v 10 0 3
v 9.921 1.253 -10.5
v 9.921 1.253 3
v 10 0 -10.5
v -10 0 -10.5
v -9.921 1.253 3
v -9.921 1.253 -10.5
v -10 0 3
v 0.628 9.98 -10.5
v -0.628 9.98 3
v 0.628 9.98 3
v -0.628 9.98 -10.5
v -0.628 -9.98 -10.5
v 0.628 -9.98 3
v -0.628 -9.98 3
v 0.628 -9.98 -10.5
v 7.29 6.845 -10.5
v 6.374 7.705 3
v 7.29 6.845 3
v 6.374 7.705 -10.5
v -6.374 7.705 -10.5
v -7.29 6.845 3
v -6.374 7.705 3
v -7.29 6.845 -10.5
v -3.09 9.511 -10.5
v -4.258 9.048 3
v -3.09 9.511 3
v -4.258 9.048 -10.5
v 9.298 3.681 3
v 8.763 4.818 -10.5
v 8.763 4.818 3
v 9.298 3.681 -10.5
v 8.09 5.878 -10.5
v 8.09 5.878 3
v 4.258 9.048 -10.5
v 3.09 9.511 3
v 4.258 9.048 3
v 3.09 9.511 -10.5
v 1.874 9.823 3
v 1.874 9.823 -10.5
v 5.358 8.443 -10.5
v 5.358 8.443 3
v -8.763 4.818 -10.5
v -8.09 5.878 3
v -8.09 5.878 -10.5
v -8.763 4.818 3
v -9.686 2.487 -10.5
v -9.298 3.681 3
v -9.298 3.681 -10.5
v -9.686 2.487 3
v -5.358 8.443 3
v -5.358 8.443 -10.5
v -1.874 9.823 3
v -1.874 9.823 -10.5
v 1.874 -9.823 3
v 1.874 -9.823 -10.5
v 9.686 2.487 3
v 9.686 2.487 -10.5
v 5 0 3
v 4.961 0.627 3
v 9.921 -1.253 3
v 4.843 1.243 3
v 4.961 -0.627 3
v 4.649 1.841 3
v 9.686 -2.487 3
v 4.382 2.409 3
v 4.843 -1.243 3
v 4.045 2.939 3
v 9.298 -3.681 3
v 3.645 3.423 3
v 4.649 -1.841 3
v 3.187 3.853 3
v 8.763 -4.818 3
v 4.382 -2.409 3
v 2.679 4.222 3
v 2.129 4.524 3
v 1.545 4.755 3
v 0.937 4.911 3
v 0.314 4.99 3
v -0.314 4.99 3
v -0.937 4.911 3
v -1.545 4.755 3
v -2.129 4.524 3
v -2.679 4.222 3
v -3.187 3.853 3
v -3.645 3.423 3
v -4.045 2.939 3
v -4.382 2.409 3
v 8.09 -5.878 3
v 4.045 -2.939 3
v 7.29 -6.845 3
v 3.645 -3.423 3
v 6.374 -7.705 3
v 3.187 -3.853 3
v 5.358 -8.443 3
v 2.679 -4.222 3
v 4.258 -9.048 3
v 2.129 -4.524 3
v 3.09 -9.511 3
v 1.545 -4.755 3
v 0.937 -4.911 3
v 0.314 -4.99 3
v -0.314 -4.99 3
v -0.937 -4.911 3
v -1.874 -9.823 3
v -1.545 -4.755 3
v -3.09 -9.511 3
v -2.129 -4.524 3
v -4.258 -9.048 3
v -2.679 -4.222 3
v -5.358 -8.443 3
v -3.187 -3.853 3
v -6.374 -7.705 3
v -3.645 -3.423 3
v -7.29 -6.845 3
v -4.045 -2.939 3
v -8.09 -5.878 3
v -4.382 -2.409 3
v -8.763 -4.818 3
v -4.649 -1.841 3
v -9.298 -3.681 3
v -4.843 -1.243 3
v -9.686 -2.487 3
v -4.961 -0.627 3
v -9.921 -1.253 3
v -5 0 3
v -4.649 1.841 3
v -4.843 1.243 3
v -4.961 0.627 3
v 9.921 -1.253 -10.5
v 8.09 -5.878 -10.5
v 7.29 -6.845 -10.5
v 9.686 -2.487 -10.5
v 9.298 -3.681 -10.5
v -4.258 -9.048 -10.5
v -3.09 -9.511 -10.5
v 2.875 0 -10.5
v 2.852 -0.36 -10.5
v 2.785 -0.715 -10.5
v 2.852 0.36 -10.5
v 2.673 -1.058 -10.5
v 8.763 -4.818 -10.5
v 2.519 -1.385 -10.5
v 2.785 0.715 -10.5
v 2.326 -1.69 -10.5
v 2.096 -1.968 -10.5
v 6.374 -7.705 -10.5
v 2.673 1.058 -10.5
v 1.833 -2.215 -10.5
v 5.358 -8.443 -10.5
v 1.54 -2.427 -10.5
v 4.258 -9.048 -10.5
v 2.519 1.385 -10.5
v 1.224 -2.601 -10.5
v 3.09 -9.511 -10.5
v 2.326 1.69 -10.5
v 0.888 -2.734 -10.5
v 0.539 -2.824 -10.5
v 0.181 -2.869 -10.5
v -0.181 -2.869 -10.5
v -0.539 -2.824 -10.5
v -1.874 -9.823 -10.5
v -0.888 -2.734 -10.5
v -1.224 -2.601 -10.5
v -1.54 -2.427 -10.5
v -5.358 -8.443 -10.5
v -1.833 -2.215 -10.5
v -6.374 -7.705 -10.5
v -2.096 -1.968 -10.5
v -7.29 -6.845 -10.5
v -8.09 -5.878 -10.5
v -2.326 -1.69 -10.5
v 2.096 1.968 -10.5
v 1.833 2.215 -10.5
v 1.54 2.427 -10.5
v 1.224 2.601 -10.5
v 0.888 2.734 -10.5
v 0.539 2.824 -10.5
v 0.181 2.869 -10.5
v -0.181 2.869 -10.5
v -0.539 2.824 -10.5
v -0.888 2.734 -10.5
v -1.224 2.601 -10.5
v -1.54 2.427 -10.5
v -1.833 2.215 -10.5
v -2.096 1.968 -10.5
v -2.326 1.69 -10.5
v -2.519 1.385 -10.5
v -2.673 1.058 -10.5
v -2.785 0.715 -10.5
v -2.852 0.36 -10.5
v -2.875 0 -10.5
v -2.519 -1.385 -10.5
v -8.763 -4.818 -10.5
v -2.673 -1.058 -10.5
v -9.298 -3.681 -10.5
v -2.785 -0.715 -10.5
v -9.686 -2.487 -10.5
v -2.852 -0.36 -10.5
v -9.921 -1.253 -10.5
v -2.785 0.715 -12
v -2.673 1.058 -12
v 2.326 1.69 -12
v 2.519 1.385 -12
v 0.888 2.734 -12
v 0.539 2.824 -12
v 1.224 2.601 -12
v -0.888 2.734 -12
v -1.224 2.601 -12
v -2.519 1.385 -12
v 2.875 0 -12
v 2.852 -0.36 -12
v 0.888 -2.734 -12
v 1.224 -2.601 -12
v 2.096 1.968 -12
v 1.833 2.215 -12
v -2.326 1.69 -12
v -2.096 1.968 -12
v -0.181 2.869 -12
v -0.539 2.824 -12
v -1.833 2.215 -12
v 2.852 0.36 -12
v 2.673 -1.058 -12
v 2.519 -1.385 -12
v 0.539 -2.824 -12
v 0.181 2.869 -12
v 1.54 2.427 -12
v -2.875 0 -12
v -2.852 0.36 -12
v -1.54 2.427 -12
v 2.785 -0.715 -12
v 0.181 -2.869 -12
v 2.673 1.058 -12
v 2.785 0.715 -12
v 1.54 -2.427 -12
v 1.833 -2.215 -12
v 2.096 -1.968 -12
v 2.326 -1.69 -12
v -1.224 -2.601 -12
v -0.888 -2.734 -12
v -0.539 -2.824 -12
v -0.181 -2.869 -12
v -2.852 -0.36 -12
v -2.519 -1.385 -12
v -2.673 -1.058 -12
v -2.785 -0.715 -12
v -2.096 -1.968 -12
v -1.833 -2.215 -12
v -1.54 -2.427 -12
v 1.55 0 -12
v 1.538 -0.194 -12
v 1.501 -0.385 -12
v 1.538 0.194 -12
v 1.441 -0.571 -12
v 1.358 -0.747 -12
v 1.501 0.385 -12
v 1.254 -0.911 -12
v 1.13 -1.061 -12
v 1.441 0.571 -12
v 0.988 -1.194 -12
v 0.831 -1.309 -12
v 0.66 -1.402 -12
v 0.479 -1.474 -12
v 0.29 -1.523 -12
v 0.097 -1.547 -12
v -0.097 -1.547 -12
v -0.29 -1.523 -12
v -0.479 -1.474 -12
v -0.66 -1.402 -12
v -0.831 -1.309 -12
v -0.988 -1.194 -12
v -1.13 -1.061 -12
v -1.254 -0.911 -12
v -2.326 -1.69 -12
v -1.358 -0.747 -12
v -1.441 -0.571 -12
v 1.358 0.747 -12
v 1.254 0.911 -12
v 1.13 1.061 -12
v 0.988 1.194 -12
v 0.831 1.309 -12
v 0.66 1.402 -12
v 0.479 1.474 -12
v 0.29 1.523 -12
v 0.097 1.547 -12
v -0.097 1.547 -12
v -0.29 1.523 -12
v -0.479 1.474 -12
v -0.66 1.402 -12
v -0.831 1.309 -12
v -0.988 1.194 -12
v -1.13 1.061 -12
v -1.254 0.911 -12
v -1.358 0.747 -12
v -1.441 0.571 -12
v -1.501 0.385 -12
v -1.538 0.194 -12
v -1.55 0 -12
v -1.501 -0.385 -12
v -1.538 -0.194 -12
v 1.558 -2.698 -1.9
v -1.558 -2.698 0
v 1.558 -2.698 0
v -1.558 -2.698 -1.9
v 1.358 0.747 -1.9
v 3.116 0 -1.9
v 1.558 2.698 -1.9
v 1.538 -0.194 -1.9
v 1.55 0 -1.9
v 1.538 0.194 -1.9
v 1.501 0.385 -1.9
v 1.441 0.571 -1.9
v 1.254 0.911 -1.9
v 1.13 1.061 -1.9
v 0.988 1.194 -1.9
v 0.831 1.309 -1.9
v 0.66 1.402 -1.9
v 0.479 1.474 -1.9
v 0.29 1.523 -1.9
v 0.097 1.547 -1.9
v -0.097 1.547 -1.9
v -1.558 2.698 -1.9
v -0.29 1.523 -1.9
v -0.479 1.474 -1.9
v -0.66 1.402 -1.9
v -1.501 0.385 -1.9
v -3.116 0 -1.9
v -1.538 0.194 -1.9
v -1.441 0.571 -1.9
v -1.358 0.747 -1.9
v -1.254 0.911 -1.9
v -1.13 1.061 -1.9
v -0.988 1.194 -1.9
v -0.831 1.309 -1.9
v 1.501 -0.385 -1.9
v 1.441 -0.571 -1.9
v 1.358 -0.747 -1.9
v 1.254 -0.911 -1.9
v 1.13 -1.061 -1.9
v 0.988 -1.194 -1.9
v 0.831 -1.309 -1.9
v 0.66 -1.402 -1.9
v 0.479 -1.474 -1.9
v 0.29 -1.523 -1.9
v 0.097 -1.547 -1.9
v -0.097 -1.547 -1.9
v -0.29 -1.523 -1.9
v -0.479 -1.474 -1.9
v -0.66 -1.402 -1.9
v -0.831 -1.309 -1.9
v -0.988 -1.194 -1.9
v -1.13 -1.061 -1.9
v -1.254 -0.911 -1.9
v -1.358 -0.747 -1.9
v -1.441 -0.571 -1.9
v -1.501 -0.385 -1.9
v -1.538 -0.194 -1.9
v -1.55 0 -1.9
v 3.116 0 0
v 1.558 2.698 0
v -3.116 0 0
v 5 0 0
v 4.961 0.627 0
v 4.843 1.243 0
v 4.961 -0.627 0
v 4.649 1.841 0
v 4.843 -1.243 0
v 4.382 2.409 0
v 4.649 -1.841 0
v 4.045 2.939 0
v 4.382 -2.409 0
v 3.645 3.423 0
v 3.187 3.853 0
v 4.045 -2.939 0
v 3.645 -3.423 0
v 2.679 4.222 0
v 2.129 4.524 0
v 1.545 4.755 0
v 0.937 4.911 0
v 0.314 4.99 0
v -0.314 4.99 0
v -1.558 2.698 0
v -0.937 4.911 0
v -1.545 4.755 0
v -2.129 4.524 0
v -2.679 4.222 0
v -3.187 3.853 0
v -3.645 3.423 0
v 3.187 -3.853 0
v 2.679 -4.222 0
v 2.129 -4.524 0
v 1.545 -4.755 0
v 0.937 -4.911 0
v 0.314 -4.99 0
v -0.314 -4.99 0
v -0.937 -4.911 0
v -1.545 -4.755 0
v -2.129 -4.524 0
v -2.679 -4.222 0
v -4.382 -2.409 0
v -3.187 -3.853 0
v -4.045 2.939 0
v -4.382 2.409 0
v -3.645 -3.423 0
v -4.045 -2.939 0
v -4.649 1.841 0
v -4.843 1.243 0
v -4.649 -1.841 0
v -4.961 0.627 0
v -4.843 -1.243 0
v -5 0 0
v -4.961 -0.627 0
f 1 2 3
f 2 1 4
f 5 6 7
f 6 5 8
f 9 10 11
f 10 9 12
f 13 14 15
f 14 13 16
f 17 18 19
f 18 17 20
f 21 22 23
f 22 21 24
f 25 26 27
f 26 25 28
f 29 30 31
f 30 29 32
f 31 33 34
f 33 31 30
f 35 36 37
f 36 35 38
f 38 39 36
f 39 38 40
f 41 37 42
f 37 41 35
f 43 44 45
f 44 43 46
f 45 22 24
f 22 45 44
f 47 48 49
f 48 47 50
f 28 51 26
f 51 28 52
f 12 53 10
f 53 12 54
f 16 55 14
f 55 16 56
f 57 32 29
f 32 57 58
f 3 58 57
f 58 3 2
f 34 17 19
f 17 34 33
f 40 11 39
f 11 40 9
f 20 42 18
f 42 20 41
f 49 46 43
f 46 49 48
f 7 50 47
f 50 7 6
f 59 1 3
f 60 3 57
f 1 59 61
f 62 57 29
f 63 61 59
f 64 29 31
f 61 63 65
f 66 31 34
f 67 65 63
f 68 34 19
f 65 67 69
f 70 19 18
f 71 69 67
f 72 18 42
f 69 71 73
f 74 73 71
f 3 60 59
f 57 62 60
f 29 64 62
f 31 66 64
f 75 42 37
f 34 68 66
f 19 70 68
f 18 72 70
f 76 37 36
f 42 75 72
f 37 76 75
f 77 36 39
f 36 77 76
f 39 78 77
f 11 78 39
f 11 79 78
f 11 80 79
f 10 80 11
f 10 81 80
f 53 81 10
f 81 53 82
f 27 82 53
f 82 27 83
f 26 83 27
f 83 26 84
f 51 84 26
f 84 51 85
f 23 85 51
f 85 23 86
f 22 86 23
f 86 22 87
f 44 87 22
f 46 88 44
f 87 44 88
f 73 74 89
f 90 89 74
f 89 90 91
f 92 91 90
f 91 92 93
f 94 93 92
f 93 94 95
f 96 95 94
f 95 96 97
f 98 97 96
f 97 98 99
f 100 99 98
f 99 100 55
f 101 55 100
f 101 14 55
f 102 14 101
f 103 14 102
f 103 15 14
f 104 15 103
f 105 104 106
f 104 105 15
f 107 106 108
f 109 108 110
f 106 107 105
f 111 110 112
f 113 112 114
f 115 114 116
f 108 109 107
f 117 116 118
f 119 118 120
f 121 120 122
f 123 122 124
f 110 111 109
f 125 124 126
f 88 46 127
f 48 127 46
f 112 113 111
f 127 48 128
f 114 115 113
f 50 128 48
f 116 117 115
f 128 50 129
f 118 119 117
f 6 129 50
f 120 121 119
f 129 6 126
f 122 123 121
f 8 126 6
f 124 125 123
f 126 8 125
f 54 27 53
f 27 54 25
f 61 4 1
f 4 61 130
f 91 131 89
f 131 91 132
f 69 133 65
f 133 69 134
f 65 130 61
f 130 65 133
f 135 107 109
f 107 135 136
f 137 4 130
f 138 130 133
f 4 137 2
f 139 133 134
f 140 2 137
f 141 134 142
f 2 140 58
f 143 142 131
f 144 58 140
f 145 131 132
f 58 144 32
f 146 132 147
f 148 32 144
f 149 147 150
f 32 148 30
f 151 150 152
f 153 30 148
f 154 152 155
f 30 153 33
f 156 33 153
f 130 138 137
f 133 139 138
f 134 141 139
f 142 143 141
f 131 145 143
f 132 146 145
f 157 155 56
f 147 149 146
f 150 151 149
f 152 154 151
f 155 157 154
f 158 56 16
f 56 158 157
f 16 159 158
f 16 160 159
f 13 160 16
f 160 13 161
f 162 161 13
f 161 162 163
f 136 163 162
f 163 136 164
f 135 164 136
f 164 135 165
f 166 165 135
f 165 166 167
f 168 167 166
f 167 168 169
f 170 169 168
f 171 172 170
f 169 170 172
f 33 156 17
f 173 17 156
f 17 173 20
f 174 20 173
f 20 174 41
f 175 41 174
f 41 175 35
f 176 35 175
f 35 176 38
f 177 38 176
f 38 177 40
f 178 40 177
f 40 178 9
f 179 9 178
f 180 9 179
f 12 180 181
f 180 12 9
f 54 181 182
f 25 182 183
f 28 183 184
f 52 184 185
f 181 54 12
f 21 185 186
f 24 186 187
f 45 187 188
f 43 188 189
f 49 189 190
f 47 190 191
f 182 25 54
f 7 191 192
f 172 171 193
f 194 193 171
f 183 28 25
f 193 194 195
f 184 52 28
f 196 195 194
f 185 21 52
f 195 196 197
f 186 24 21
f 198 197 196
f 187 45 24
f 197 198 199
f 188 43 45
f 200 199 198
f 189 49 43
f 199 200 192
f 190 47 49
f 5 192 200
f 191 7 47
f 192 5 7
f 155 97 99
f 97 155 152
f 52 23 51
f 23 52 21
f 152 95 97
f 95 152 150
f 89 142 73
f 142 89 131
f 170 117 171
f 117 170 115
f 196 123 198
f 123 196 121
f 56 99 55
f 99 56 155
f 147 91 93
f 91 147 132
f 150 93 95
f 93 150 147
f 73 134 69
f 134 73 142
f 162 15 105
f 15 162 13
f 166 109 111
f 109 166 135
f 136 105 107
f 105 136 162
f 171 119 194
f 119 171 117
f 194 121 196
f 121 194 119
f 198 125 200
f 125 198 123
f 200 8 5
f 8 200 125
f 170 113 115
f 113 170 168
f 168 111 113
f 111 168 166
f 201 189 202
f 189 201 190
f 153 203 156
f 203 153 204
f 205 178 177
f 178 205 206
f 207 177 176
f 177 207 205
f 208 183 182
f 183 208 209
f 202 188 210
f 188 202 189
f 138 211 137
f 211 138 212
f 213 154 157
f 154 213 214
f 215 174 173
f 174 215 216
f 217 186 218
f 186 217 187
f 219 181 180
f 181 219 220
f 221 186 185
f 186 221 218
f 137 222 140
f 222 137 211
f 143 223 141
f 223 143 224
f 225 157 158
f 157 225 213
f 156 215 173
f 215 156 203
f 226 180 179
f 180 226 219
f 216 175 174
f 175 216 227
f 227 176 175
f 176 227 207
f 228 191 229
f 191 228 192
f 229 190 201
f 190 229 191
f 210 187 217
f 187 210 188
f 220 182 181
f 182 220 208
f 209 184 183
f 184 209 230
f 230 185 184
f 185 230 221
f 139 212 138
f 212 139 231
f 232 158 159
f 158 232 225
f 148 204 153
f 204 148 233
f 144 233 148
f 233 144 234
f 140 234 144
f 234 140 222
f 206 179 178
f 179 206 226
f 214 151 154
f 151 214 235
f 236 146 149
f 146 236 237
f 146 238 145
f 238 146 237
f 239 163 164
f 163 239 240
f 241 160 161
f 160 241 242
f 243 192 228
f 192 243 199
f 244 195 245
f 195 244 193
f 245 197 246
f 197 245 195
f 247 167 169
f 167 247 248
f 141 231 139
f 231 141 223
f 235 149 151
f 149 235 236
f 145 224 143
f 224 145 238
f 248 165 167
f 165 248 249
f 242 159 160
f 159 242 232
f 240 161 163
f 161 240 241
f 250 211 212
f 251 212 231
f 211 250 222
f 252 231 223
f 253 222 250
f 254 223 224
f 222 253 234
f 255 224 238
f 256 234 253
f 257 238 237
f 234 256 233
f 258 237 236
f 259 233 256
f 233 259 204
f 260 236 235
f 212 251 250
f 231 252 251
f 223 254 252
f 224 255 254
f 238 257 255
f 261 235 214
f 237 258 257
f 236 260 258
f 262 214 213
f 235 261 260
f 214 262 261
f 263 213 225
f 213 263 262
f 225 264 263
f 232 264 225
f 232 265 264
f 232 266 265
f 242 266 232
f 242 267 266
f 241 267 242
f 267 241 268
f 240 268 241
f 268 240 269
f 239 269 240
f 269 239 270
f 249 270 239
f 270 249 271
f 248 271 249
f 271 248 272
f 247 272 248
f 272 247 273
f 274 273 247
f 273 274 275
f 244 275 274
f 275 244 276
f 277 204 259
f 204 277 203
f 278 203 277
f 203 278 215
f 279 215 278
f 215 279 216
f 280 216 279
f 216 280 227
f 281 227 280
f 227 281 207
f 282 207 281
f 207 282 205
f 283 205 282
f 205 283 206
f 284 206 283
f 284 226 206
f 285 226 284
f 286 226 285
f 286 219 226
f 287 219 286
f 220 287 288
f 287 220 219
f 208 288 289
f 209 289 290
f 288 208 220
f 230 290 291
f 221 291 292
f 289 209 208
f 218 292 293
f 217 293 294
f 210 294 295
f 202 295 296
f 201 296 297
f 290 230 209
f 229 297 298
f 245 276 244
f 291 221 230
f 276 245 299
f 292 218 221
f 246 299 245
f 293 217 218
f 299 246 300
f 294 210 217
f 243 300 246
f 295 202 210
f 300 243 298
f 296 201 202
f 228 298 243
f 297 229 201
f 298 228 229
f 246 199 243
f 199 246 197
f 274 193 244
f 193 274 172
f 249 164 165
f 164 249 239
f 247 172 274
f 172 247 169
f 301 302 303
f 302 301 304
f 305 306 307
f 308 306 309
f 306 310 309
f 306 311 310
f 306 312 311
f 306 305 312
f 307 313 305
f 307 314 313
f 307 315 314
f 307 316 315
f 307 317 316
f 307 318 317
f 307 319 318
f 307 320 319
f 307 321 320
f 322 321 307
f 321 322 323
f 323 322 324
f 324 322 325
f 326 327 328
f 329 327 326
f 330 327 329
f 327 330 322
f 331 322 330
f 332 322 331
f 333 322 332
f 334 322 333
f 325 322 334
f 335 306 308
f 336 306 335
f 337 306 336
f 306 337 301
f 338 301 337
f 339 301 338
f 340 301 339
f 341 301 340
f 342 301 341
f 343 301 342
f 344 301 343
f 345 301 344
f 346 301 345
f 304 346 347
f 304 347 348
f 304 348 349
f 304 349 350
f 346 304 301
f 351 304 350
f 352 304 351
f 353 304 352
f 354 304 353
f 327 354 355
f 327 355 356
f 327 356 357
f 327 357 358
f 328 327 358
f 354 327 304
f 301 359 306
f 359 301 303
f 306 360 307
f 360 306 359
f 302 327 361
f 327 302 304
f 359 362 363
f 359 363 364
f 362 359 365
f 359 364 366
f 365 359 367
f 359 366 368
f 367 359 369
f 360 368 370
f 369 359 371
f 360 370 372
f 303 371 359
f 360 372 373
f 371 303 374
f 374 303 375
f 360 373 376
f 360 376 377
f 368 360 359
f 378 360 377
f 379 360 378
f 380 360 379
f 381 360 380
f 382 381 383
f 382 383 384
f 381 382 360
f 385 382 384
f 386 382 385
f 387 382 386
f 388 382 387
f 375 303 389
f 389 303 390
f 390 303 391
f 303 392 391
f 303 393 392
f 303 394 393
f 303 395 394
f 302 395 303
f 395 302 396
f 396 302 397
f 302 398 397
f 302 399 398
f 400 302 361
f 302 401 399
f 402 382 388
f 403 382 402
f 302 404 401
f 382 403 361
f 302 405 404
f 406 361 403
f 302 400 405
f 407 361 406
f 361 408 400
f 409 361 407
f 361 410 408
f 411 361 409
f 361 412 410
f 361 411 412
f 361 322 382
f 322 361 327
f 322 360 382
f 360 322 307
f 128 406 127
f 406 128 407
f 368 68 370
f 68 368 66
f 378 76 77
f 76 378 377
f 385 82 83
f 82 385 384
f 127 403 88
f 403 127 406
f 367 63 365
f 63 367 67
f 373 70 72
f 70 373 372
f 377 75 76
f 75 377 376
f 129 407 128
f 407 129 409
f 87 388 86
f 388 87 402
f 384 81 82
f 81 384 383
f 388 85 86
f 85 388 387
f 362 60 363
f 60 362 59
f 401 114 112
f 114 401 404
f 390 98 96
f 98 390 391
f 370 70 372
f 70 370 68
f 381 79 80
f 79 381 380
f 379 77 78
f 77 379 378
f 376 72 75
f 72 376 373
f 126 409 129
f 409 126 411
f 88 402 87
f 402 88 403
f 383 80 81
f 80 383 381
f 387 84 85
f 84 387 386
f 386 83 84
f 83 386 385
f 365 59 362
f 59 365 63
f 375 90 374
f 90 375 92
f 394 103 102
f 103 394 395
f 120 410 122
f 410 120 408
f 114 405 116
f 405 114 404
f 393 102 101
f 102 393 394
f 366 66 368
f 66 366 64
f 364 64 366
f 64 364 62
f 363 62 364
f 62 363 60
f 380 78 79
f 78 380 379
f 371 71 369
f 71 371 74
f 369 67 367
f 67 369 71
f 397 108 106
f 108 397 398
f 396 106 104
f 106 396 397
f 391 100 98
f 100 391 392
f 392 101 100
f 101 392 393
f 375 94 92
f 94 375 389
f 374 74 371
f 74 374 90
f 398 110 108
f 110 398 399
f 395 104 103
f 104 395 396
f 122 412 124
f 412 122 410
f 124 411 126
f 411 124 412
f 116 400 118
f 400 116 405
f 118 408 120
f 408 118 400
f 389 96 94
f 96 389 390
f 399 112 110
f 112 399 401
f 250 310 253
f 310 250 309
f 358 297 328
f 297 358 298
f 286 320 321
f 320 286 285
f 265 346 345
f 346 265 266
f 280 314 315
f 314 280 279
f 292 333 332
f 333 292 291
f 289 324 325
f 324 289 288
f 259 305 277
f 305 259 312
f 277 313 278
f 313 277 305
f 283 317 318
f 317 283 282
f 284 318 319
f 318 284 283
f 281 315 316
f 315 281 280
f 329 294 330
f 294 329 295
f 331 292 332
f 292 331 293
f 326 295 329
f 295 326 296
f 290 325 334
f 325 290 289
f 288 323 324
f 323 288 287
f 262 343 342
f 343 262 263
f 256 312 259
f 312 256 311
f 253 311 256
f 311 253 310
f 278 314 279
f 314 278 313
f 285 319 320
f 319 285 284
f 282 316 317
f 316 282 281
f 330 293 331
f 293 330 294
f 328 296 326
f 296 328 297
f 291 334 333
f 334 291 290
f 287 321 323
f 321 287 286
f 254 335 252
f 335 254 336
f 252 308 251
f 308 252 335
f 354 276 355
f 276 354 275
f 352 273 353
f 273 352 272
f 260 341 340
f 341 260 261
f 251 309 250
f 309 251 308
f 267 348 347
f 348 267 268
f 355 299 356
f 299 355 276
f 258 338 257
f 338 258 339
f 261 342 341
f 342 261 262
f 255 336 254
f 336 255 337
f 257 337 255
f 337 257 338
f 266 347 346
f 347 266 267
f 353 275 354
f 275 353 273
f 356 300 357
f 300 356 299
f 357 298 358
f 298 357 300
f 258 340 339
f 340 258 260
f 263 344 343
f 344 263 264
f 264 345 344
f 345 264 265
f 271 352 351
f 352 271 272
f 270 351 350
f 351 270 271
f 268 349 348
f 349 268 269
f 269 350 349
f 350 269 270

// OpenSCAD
$fn = 50;


difference() {
	union() {
		translate(v = [0, 0, -10.5000000000]) {
			cylinder(h = 13.5000000000, r = 10.0000000000);
		}
		#translate(v = [0, 0, -12.0000000000]) {
			cylinder(h = 12, r = 2.8750000000);
		}
	}
	union() {
		translate(v = [0, 0, 0]) {
			rotate(a = [0, 0, 0]) {
				difference() {
					union() {
						translate(v = [0, 0, -1.9000000000]) {
							linear_extrude(height = 1.9000000000) {
								polygon(points = [[3.1158000000, 0.0000000000], [1.5579000000, 2.6983619531], [-1.5579000000, 2.6983619531], [-3.1158000000, 0.0000000000], [-1.5579000000, -2.6983619531], [1.5579000000, -2.6983619531]]);
							}
						}
					}
					union();
				}
			}
		}
		#cylinder(h = 3, r = 5.0000000000);
		#translate(v = [0, 0, -100.0000000000]) {
			cylinder(h = 200, r = 1.5500000000);
		}
	}
}
